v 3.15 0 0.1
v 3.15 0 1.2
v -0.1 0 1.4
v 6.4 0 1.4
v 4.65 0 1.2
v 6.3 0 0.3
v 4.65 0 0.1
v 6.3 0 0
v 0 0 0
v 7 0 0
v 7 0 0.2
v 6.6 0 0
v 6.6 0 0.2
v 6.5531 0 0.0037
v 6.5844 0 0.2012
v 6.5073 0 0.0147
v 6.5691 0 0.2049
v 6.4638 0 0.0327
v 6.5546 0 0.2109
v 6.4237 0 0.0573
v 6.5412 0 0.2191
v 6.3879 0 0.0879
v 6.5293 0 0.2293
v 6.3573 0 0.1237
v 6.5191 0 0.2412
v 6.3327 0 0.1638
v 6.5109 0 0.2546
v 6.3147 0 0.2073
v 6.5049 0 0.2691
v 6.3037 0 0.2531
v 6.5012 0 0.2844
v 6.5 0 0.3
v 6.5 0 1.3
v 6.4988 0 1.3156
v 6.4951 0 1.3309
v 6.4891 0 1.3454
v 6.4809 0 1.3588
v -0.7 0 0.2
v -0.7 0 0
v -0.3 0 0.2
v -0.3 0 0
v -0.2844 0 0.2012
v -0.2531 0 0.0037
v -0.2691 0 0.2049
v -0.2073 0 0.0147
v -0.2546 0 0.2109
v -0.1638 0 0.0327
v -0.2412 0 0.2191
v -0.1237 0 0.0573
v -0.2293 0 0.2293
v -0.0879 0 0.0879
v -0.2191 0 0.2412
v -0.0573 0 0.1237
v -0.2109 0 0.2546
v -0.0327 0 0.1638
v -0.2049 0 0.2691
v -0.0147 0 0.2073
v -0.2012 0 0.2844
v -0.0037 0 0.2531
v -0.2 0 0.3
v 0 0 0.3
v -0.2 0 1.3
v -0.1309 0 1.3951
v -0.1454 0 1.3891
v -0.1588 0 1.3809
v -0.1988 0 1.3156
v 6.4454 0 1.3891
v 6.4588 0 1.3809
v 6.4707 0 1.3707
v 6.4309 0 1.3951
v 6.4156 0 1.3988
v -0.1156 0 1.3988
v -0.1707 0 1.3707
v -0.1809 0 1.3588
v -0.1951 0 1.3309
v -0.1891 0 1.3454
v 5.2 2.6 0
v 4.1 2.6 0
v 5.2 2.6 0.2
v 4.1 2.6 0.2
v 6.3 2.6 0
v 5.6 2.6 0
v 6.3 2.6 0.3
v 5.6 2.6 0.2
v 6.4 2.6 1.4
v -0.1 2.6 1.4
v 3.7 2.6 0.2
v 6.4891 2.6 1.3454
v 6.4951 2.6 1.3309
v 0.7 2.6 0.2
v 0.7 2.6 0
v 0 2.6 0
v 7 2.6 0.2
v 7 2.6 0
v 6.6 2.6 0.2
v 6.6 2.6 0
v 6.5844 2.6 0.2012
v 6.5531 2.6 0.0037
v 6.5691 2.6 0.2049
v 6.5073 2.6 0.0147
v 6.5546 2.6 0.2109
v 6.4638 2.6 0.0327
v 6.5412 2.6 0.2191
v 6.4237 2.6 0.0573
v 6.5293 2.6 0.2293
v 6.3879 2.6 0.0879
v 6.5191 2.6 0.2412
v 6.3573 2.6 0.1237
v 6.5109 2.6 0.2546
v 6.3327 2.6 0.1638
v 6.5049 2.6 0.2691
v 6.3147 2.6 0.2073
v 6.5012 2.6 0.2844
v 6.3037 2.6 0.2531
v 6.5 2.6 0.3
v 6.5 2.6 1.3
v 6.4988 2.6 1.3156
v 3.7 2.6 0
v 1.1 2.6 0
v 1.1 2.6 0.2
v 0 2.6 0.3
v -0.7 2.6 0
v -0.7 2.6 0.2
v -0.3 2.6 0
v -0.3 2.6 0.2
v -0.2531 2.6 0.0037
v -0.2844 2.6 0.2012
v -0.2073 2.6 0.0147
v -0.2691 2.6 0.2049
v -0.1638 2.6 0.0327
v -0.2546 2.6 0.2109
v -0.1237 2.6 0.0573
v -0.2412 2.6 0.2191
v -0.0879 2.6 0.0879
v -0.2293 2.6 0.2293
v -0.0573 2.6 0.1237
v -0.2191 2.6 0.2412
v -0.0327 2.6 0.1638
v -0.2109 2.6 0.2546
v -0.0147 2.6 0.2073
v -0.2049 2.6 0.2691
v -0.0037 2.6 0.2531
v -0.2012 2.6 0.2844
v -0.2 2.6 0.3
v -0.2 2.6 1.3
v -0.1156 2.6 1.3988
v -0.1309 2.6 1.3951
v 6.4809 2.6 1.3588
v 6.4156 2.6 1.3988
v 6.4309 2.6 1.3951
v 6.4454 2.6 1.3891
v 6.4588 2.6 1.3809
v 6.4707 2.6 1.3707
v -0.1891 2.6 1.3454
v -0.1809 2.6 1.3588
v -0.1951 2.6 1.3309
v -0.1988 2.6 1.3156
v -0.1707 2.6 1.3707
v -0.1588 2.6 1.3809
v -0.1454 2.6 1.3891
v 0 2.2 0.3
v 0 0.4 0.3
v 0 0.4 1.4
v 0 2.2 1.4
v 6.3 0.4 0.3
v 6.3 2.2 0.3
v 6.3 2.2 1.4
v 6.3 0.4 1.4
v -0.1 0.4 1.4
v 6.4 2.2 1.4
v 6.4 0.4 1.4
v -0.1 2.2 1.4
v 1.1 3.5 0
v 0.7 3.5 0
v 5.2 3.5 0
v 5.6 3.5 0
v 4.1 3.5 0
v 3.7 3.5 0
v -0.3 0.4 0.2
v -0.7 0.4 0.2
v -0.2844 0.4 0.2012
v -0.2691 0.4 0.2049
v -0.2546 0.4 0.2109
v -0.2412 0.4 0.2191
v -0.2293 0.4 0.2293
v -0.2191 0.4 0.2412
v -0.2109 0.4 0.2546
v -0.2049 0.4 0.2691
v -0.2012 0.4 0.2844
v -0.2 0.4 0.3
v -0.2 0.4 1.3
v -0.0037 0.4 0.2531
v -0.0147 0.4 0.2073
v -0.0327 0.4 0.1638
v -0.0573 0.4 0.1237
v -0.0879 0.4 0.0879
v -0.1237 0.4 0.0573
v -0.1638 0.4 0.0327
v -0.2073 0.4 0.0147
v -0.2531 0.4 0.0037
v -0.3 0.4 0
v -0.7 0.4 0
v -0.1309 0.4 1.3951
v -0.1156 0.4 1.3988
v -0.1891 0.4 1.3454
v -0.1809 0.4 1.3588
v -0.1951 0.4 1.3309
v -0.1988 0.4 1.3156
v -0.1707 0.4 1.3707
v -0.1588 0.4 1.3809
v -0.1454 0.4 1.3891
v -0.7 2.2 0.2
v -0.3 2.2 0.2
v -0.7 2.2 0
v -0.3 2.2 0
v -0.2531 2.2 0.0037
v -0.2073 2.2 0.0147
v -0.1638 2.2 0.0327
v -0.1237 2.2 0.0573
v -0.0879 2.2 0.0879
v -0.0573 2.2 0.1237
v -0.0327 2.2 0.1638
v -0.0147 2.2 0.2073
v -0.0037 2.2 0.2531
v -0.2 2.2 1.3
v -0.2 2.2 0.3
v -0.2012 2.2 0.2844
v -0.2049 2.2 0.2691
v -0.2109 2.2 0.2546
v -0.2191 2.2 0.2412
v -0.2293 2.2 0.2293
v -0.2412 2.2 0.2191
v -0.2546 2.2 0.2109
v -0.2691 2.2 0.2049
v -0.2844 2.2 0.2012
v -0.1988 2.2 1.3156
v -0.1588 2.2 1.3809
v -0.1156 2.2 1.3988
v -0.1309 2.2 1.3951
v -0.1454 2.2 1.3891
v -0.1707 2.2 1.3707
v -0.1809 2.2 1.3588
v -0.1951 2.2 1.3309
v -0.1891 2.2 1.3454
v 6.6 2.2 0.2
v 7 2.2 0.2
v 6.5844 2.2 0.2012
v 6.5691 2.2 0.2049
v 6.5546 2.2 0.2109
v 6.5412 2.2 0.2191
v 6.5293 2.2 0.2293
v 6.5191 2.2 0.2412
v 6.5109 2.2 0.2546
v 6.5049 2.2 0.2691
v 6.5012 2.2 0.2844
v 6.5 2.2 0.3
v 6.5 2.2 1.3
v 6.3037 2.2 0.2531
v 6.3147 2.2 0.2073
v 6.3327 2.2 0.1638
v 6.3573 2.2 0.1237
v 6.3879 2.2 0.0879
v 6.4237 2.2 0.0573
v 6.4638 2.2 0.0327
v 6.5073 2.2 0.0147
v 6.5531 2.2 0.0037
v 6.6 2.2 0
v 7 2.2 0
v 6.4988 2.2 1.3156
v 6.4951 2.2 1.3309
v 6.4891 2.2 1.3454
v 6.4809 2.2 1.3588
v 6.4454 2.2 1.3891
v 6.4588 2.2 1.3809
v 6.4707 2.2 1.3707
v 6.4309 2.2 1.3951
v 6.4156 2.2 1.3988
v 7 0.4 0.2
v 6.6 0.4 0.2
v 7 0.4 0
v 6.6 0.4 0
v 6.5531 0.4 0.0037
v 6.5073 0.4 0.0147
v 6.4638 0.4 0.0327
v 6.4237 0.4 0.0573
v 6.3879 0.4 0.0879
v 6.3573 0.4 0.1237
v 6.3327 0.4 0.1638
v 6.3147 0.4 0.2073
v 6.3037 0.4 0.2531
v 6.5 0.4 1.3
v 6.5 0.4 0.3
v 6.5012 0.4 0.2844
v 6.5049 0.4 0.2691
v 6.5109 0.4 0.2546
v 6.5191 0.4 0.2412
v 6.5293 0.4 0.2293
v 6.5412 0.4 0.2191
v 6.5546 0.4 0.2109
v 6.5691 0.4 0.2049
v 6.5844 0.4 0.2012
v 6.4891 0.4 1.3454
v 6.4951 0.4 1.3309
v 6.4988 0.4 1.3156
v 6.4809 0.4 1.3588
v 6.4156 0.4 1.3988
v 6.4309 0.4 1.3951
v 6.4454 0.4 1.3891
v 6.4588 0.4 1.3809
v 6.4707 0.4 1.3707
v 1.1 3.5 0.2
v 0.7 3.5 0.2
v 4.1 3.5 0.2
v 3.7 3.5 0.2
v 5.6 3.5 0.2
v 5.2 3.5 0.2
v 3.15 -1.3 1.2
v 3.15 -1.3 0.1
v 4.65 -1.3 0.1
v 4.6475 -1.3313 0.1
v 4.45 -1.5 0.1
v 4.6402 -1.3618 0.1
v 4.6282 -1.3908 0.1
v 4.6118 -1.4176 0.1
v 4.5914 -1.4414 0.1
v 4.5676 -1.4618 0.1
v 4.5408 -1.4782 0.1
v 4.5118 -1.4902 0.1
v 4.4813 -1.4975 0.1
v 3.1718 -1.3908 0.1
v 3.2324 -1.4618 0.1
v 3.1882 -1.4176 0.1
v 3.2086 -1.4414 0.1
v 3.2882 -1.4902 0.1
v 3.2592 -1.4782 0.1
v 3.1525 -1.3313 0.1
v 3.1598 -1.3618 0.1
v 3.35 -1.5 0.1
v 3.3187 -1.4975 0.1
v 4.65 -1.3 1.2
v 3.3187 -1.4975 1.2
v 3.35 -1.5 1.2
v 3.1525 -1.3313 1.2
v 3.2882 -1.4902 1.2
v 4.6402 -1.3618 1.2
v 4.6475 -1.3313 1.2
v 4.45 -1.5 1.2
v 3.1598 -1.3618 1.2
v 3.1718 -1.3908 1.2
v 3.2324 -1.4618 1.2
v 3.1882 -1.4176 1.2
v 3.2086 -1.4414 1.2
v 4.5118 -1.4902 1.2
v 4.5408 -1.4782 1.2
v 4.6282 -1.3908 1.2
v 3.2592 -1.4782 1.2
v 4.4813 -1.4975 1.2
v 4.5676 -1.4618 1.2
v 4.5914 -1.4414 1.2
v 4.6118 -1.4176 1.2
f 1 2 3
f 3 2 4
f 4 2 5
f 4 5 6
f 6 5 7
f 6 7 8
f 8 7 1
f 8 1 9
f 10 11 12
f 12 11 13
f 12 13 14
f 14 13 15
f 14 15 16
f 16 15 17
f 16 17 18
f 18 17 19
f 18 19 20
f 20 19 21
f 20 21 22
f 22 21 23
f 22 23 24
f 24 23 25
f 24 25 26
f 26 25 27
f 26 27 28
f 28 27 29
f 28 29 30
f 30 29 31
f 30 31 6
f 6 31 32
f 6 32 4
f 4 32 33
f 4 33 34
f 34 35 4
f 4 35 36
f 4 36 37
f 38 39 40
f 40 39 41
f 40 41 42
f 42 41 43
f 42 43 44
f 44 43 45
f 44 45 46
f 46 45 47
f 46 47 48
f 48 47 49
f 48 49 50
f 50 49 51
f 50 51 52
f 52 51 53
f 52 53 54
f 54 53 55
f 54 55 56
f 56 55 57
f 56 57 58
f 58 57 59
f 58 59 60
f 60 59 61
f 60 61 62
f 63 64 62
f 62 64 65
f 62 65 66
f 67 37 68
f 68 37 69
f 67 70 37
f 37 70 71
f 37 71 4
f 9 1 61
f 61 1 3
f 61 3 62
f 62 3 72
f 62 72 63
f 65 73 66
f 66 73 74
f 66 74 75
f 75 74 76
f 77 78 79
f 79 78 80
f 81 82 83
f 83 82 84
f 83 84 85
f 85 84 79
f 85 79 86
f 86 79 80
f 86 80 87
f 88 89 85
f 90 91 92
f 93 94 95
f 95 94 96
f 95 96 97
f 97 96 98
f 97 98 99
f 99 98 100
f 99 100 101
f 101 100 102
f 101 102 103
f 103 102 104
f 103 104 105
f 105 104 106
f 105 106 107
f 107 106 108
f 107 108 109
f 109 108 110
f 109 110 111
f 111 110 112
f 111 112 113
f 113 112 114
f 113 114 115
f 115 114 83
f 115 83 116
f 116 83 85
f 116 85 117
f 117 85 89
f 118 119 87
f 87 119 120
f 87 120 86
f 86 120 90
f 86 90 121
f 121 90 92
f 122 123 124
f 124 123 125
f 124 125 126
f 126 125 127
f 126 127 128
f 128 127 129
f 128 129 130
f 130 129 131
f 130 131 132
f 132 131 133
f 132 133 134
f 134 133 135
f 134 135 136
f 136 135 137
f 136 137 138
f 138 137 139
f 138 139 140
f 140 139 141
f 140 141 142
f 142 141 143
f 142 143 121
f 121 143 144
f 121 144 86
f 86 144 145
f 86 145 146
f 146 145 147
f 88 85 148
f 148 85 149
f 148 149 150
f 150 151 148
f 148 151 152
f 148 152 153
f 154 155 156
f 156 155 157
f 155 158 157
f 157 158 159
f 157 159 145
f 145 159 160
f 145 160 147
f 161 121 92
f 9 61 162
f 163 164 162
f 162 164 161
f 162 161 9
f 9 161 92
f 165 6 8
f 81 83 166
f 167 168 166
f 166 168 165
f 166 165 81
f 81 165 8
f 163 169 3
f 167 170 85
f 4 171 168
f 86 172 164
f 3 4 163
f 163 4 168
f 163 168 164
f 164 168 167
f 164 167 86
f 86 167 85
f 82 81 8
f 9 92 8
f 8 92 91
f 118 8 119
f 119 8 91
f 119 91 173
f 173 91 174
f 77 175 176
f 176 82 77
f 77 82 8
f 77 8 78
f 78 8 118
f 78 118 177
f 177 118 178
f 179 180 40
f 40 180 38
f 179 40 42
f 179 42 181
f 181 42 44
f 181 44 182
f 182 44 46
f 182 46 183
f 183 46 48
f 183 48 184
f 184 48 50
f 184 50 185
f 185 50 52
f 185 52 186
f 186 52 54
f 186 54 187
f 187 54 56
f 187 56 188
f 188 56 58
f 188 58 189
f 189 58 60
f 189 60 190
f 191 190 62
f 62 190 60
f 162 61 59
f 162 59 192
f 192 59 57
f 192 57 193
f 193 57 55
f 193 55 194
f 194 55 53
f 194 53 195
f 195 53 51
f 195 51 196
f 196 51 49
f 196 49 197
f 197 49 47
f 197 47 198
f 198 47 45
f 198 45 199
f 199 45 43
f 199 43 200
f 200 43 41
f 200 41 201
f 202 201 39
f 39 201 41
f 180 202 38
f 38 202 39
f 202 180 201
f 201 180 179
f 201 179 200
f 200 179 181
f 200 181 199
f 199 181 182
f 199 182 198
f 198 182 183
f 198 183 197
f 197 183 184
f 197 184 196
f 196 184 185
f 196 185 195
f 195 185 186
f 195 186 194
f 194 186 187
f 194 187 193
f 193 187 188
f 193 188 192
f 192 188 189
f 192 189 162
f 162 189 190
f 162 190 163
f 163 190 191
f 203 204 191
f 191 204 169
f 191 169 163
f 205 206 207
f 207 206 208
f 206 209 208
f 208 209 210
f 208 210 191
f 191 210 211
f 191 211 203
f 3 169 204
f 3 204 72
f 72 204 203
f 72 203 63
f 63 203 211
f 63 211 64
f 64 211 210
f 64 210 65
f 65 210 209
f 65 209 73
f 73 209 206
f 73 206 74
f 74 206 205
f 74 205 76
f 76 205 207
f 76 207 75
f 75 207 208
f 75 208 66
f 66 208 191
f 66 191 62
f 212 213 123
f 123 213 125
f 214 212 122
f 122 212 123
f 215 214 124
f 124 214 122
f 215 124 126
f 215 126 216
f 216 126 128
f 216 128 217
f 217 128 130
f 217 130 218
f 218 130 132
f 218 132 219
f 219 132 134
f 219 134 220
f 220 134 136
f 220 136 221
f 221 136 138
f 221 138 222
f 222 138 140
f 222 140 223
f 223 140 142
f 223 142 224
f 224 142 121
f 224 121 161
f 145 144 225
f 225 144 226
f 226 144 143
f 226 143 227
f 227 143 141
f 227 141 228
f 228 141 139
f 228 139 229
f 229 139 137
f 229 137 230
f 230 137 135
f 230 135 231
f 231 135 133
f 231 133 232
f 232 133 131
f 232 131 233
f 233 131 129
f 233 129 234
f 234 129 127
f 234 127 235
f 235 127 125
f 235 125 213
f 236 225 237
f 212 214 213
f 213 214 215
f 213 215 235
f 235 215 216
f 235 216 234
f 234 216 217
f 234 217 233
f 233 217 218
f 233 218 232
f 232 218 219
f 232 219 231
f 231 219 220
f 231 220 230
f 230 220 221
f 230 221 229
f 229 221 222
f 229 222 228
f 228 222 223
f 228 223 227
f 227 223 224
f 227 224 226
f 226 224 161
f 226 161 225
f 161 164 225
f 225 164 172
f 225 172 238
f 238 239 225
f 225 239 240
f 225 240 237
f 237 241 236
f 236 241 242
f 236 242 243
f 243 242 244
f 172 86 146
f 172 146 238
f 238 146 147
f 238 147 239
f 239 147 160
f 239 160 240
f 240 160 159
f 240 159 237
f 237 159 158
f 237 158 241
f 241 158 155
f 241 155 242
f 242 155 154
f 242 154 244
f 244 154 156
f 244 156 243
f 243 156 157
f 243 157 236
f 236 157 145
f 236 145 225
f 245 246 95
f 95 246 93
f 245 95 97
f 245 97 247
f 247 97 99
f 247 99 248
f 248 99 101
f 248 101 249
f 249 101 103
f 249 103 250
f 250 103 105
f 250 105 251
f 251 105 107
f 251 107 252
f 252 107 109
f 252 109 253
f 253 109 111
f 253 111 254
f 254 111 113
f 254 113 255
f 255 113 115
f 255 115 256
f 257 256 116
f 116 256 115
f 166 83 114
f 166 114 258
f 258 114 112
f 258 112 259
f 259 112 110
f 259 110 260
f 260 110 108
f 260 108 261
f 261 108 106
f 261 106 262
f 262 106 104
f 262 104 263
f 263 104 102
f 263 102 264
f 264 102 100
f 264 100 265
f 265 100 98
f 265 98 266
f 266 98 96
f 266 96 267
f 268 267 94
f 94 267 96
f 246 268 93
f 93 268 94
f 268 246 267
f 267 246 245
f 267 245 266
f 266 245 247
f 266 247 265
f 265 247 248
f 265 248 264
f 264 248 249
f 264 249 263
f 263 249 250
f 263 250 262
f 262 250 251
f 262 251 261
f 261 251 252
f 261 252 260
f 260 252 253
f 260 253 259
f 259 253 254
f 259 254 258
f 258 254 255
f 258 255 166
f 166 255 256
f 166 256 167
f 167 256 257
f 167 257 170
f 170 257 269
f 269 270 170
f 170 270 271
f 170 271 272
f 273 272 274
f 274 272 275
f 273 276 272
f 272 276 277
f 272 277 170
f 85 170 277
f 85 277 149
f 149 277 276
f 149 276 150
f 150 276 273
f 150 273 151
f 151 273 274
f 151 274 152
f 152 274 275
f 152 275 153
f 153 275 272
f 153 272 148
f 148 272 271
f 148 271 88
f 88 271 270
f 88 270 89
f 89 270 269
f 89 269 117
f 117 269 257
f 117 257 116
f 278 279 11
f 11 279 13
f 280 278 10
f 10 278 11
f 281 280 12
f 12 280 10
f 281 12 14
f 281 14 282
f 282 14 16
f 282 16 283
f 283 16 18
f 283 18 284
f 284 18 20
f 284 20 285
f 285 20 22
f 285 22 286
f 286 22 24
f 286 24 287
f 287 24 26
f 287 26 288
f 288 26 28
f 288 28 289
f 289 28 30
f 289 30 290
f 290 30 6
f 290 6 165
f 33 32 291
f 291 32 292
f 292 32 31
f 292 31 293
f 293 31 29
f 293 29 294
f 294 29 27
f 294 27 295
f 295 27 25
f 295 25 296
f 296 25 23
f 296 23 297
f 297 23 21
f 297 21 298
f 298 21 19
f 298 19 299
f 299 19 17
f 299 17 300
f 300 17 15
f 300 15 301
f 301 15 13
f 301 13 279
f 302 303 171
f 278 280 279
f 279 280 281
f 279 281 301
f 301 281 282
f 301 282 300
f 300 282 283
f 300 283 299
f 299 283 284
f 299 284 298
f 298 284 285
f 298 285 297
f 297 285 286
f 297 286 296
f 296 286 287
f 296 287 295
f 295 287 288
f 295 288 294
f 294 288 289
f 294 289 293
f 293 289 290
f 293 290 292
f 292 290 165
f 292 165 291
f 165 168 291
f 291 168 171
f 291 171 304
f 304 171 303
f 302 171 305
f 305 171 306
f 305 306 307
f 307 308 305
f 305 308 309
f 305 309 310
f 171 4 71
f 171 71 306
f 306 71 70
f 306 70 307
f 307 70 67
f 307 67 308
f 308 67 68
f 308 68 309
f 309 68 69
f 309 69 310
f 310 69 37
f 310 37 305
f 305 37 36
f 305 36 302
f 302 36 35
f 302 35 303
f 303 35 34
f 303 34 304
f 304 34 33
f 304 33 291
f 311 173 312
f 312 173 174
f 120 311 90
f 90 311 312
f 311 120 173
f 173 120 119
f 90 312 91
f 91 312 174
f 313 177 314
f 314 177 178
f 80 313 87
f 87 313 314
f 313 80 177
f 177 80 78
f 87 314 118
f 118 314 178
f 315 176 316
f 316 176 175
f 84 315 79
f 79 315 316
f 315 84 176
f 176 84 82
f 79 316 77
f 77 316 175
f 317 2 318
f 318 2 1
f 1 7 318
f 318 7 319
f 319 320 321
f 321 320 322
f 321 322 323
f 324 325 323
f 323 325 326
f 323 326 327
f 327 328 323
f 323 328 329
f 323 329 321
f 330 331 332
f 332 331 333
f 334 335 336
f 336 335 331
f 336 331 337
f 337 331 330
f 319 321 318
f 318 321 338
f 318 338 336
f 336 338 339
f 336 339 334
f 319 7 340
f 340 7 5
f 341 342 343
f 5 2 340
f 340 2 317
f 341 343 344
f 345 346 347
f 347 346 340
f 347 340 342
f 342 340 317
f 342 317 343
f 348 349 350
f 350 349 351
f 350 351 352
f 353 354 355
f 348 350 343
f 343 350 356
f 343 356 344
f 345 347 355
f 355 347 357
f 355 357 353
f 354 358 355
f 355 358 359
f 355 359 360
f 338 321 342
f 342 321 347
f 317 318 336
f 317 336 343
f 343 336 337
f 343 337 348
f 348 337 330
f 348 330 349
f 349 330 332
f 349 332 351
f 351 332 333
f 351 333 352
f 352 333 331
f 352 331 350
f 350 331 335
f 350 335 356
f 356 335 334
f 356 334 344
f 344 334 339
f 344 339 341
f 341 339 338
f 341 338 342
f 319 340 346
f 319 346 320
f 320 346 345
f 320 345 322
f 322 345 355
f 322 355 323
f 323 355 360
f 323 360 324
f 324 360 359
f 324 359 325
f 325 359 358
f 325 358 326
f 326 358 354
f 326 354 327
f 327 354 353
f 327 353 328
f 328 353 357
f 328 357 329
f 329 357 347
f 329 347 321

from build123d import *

# Parameters (mm, degrees)
SKETCH2_W            = 6.3
SKETCH2_H            = 2.6
BOSS_EXTRUDE1_DEPTH  = 1.4
EXTRUDE_THIN2_DEPTH  = 0.4
FILLET1_R            = 0.1
FILLET1_OF_MIRROR3_R = 0.1
MIRROR4_DEPTH        = 0.4
MIRROR4_START        = 2.2
MIRROR4_2_DEPTH      = 0.4
SKETCH4_W            = 0.2
SKETCH4_H            = 0.9
EXTRUDE_THIN3_DEPTH  = 0.2
SKETCH5_W            = 0.2
SKETCH5_H            = 0.9
EXTRUDE_THIN4_DEPTH  = 0.2
SKETCH6_W            = 0.2
SKETCH6_H            = 0.9
EXTRUDE_THIN5_DEPTH  = 0.2
SKETCH8_W            = 1.5
SKETCH8_H            = 1.1
BOSS_EXTRUDE2_DEPTH  = 1.5
FILLET2_R            = 0.2


# Read off the part's stored shape, not the designer's step: Mirror4
with BuildPart() as part:
    # Sketch2 → Boss-Extrude1 (new body)
    with BuildSketch(Plane.XY):
        with Locations((3.15, 1.3)):
            Rectangle(SKETCH2_W, SKETCH2_H)
    extrude(amount=BOSS_EXTRUDE1_DEPTH)

    # Sketch3 → Extrude-Thin2 (add)
    with BuildSketch(Plane.XZ):
        with BuildLine():
            Line((0, 1.4), (0, 0.3))
            ThreePointArc((0, 0.3), (-0.087867966, 0.087867966), (-0.3, 0))
            Line((-0.3, 0), (-0.7, 0))
            Line((-0.7, 0), (-0.7, 0.2))
            Line((-0.7, 0.2), (-0.3, 0.2))
            ThreePointArc((-0.3, 0.2), (-0.229289322, 0.229289322), (-0.2, 0.3))
            Line((-0.2, 0.3), (-0.2, 1.4))
            Line((-0.2, 1.4), (0, 1.4))
        make_face()
    extrude_thin2 = extrude(amount=-EXTRUDE_THIN2_DEPTH)

    # Fillet1
    fillet1_edges = [part.edges().sort_by_distance(p)[0] for p in [
        (-0.2, 0.2, 1.4),
    ]]
    fillet(fillet1_edges, radius=FILLET1_R)

    # Mirror3: Extrude-Thin2 across plane
    add(extrude_thin2.mirror(Plane.ZX.offset(1.3)))

    # Fillet1 of Mirror3
    fillet1_of_mirror3_edges = [part.edges().sort_by_distance(p)[0] for p in [
        (-0.2, 2.4, 1.4),
    ]]
    fillet(fillet1_of_mirror3_edges, radius=FILLET1_OF_MIRROR3_R)

    # Mirror4 outline → Mirror4 (add)
    with BuildSketch(Plane(origin=(0, 0, 0), x_dir=(1, 0, 0), z_dir=(0, 1, 0))):
        with BuildLine():
            Line((7, 0), (6.6, 0))
            ThreePointArc((6.6, 0), (6.387867966, -0.087867966), (6.3, -0.3))
            Line((6.3, -0.3), (6.3, -1.4))
            Line((6.3, -1.4), (6.4, -1.4))
            ThreePointArc((6.4, -1.4), (6.470710678, -1.370710678), (6.5, -1.3))
            Line((6.5, -1.3), (6.5, -0.3))
            ThreePointArc((6.5, -0.3), (6.529289322, -0.229289322), (6.6, -0.2))
            Line((6.6, -0.2), (7, -0.2))
            Line((7, -0.2), (7, 0))
        make_face()
    extrude(amount=MIRROR4_DEPTH)

    # Mirror4 2 outline → Mirror4 2 (add)
    with BuildSketch(Plane(origin=(0, 0, 0), x_dir=(1, 0, 0), z_dir=(0, 1, 0)).offset(MIRROR4_START)):
        with BuildLine():
            Line((7, 0), (6.6, 0))
            ThreePointArc((6.6, 0), (6.387867966, -0.087867966), (6.3, -0.3))
            Line((6.3, -0.3), (6.3, -1.4))
            Line((6.3, -1.4), (6.4, -1.4))
            ThreePointArc((6.4, -1.4), (6.470710678, -1.370710678), (6.5, -1.3))
            Line((6.5, -1.3), (6.5, -0.3))
            ThreePointArc((6.5, -0.3), (6.529289322, -0.229289322), (6.6, -0.2))
            Line((6.6, -0.2), (7, -0.2))
            Line((7, -0.2), (7, 0))
        make_face()
    extrude(amount=MIRROR4_2_DEPTH)

    # Sketch4 → Extrude-Thin3 (add, symmetric)
    with BuildSketch(Plane(origin=(0.9, 0, 0), x_dir=(0, 0, -1), z_dir=(1, 0, 0))):
        with Locations((-0.1, 3.05)):
            Rectangle(SKETCH4_W, SKETCH4_H)
    extrude(amount=EXTRUDE_THIN3_DEPTH, both=True)

    # Sketch5 → Extrude-Thin4 (add, symmetric)
    with BuildSketch(Plane(origin=(3.9, 0, 0), x_dir=(0, 0, -1), z_dir=(1, 0, 0))):
        with Locations((-0.1, 3.05)):
            Rectangle(SKETCH5_W, SKETCH5_H)
    extrude(amount=EXTRUDE_THIN4_DEPTH, both=True)

    # Sketch6 → Extrude-Thin5 (add, symmetric)
    with BuildSketch(Plane(origin=(5.4, 0, 0), x_dir=(0, 0, -1), z_dir=(1, 0, 0))):
        with Locations((-0.1, 3.05)):
            Rectangle(SKETCH6_W, SKETCH6_H)
    extrude(amount=EXTRUDE_THIN5_DEPTH, both=True)

    # Sketch8 → Boss-Extrude2 (add)
    with BuildSketch(Plane.XZ):
        with Locations((3.9, 0.65)):
            Rectangle(SKETCH8_W, SKETCH8_H)
    extrude(amount=BOSS_EXTRUDE2_DEPTH)

    # Fillet2
    fillet2_edges = [part.edges().sort_by_distance(p)[0] for p in [
        (3.15, -1.5, 0.65),
        (4.65, -1.5, 0.65),
    ]]
    fillet(fillet2_edges, radius=FILLET2_R)


solid = part.part
